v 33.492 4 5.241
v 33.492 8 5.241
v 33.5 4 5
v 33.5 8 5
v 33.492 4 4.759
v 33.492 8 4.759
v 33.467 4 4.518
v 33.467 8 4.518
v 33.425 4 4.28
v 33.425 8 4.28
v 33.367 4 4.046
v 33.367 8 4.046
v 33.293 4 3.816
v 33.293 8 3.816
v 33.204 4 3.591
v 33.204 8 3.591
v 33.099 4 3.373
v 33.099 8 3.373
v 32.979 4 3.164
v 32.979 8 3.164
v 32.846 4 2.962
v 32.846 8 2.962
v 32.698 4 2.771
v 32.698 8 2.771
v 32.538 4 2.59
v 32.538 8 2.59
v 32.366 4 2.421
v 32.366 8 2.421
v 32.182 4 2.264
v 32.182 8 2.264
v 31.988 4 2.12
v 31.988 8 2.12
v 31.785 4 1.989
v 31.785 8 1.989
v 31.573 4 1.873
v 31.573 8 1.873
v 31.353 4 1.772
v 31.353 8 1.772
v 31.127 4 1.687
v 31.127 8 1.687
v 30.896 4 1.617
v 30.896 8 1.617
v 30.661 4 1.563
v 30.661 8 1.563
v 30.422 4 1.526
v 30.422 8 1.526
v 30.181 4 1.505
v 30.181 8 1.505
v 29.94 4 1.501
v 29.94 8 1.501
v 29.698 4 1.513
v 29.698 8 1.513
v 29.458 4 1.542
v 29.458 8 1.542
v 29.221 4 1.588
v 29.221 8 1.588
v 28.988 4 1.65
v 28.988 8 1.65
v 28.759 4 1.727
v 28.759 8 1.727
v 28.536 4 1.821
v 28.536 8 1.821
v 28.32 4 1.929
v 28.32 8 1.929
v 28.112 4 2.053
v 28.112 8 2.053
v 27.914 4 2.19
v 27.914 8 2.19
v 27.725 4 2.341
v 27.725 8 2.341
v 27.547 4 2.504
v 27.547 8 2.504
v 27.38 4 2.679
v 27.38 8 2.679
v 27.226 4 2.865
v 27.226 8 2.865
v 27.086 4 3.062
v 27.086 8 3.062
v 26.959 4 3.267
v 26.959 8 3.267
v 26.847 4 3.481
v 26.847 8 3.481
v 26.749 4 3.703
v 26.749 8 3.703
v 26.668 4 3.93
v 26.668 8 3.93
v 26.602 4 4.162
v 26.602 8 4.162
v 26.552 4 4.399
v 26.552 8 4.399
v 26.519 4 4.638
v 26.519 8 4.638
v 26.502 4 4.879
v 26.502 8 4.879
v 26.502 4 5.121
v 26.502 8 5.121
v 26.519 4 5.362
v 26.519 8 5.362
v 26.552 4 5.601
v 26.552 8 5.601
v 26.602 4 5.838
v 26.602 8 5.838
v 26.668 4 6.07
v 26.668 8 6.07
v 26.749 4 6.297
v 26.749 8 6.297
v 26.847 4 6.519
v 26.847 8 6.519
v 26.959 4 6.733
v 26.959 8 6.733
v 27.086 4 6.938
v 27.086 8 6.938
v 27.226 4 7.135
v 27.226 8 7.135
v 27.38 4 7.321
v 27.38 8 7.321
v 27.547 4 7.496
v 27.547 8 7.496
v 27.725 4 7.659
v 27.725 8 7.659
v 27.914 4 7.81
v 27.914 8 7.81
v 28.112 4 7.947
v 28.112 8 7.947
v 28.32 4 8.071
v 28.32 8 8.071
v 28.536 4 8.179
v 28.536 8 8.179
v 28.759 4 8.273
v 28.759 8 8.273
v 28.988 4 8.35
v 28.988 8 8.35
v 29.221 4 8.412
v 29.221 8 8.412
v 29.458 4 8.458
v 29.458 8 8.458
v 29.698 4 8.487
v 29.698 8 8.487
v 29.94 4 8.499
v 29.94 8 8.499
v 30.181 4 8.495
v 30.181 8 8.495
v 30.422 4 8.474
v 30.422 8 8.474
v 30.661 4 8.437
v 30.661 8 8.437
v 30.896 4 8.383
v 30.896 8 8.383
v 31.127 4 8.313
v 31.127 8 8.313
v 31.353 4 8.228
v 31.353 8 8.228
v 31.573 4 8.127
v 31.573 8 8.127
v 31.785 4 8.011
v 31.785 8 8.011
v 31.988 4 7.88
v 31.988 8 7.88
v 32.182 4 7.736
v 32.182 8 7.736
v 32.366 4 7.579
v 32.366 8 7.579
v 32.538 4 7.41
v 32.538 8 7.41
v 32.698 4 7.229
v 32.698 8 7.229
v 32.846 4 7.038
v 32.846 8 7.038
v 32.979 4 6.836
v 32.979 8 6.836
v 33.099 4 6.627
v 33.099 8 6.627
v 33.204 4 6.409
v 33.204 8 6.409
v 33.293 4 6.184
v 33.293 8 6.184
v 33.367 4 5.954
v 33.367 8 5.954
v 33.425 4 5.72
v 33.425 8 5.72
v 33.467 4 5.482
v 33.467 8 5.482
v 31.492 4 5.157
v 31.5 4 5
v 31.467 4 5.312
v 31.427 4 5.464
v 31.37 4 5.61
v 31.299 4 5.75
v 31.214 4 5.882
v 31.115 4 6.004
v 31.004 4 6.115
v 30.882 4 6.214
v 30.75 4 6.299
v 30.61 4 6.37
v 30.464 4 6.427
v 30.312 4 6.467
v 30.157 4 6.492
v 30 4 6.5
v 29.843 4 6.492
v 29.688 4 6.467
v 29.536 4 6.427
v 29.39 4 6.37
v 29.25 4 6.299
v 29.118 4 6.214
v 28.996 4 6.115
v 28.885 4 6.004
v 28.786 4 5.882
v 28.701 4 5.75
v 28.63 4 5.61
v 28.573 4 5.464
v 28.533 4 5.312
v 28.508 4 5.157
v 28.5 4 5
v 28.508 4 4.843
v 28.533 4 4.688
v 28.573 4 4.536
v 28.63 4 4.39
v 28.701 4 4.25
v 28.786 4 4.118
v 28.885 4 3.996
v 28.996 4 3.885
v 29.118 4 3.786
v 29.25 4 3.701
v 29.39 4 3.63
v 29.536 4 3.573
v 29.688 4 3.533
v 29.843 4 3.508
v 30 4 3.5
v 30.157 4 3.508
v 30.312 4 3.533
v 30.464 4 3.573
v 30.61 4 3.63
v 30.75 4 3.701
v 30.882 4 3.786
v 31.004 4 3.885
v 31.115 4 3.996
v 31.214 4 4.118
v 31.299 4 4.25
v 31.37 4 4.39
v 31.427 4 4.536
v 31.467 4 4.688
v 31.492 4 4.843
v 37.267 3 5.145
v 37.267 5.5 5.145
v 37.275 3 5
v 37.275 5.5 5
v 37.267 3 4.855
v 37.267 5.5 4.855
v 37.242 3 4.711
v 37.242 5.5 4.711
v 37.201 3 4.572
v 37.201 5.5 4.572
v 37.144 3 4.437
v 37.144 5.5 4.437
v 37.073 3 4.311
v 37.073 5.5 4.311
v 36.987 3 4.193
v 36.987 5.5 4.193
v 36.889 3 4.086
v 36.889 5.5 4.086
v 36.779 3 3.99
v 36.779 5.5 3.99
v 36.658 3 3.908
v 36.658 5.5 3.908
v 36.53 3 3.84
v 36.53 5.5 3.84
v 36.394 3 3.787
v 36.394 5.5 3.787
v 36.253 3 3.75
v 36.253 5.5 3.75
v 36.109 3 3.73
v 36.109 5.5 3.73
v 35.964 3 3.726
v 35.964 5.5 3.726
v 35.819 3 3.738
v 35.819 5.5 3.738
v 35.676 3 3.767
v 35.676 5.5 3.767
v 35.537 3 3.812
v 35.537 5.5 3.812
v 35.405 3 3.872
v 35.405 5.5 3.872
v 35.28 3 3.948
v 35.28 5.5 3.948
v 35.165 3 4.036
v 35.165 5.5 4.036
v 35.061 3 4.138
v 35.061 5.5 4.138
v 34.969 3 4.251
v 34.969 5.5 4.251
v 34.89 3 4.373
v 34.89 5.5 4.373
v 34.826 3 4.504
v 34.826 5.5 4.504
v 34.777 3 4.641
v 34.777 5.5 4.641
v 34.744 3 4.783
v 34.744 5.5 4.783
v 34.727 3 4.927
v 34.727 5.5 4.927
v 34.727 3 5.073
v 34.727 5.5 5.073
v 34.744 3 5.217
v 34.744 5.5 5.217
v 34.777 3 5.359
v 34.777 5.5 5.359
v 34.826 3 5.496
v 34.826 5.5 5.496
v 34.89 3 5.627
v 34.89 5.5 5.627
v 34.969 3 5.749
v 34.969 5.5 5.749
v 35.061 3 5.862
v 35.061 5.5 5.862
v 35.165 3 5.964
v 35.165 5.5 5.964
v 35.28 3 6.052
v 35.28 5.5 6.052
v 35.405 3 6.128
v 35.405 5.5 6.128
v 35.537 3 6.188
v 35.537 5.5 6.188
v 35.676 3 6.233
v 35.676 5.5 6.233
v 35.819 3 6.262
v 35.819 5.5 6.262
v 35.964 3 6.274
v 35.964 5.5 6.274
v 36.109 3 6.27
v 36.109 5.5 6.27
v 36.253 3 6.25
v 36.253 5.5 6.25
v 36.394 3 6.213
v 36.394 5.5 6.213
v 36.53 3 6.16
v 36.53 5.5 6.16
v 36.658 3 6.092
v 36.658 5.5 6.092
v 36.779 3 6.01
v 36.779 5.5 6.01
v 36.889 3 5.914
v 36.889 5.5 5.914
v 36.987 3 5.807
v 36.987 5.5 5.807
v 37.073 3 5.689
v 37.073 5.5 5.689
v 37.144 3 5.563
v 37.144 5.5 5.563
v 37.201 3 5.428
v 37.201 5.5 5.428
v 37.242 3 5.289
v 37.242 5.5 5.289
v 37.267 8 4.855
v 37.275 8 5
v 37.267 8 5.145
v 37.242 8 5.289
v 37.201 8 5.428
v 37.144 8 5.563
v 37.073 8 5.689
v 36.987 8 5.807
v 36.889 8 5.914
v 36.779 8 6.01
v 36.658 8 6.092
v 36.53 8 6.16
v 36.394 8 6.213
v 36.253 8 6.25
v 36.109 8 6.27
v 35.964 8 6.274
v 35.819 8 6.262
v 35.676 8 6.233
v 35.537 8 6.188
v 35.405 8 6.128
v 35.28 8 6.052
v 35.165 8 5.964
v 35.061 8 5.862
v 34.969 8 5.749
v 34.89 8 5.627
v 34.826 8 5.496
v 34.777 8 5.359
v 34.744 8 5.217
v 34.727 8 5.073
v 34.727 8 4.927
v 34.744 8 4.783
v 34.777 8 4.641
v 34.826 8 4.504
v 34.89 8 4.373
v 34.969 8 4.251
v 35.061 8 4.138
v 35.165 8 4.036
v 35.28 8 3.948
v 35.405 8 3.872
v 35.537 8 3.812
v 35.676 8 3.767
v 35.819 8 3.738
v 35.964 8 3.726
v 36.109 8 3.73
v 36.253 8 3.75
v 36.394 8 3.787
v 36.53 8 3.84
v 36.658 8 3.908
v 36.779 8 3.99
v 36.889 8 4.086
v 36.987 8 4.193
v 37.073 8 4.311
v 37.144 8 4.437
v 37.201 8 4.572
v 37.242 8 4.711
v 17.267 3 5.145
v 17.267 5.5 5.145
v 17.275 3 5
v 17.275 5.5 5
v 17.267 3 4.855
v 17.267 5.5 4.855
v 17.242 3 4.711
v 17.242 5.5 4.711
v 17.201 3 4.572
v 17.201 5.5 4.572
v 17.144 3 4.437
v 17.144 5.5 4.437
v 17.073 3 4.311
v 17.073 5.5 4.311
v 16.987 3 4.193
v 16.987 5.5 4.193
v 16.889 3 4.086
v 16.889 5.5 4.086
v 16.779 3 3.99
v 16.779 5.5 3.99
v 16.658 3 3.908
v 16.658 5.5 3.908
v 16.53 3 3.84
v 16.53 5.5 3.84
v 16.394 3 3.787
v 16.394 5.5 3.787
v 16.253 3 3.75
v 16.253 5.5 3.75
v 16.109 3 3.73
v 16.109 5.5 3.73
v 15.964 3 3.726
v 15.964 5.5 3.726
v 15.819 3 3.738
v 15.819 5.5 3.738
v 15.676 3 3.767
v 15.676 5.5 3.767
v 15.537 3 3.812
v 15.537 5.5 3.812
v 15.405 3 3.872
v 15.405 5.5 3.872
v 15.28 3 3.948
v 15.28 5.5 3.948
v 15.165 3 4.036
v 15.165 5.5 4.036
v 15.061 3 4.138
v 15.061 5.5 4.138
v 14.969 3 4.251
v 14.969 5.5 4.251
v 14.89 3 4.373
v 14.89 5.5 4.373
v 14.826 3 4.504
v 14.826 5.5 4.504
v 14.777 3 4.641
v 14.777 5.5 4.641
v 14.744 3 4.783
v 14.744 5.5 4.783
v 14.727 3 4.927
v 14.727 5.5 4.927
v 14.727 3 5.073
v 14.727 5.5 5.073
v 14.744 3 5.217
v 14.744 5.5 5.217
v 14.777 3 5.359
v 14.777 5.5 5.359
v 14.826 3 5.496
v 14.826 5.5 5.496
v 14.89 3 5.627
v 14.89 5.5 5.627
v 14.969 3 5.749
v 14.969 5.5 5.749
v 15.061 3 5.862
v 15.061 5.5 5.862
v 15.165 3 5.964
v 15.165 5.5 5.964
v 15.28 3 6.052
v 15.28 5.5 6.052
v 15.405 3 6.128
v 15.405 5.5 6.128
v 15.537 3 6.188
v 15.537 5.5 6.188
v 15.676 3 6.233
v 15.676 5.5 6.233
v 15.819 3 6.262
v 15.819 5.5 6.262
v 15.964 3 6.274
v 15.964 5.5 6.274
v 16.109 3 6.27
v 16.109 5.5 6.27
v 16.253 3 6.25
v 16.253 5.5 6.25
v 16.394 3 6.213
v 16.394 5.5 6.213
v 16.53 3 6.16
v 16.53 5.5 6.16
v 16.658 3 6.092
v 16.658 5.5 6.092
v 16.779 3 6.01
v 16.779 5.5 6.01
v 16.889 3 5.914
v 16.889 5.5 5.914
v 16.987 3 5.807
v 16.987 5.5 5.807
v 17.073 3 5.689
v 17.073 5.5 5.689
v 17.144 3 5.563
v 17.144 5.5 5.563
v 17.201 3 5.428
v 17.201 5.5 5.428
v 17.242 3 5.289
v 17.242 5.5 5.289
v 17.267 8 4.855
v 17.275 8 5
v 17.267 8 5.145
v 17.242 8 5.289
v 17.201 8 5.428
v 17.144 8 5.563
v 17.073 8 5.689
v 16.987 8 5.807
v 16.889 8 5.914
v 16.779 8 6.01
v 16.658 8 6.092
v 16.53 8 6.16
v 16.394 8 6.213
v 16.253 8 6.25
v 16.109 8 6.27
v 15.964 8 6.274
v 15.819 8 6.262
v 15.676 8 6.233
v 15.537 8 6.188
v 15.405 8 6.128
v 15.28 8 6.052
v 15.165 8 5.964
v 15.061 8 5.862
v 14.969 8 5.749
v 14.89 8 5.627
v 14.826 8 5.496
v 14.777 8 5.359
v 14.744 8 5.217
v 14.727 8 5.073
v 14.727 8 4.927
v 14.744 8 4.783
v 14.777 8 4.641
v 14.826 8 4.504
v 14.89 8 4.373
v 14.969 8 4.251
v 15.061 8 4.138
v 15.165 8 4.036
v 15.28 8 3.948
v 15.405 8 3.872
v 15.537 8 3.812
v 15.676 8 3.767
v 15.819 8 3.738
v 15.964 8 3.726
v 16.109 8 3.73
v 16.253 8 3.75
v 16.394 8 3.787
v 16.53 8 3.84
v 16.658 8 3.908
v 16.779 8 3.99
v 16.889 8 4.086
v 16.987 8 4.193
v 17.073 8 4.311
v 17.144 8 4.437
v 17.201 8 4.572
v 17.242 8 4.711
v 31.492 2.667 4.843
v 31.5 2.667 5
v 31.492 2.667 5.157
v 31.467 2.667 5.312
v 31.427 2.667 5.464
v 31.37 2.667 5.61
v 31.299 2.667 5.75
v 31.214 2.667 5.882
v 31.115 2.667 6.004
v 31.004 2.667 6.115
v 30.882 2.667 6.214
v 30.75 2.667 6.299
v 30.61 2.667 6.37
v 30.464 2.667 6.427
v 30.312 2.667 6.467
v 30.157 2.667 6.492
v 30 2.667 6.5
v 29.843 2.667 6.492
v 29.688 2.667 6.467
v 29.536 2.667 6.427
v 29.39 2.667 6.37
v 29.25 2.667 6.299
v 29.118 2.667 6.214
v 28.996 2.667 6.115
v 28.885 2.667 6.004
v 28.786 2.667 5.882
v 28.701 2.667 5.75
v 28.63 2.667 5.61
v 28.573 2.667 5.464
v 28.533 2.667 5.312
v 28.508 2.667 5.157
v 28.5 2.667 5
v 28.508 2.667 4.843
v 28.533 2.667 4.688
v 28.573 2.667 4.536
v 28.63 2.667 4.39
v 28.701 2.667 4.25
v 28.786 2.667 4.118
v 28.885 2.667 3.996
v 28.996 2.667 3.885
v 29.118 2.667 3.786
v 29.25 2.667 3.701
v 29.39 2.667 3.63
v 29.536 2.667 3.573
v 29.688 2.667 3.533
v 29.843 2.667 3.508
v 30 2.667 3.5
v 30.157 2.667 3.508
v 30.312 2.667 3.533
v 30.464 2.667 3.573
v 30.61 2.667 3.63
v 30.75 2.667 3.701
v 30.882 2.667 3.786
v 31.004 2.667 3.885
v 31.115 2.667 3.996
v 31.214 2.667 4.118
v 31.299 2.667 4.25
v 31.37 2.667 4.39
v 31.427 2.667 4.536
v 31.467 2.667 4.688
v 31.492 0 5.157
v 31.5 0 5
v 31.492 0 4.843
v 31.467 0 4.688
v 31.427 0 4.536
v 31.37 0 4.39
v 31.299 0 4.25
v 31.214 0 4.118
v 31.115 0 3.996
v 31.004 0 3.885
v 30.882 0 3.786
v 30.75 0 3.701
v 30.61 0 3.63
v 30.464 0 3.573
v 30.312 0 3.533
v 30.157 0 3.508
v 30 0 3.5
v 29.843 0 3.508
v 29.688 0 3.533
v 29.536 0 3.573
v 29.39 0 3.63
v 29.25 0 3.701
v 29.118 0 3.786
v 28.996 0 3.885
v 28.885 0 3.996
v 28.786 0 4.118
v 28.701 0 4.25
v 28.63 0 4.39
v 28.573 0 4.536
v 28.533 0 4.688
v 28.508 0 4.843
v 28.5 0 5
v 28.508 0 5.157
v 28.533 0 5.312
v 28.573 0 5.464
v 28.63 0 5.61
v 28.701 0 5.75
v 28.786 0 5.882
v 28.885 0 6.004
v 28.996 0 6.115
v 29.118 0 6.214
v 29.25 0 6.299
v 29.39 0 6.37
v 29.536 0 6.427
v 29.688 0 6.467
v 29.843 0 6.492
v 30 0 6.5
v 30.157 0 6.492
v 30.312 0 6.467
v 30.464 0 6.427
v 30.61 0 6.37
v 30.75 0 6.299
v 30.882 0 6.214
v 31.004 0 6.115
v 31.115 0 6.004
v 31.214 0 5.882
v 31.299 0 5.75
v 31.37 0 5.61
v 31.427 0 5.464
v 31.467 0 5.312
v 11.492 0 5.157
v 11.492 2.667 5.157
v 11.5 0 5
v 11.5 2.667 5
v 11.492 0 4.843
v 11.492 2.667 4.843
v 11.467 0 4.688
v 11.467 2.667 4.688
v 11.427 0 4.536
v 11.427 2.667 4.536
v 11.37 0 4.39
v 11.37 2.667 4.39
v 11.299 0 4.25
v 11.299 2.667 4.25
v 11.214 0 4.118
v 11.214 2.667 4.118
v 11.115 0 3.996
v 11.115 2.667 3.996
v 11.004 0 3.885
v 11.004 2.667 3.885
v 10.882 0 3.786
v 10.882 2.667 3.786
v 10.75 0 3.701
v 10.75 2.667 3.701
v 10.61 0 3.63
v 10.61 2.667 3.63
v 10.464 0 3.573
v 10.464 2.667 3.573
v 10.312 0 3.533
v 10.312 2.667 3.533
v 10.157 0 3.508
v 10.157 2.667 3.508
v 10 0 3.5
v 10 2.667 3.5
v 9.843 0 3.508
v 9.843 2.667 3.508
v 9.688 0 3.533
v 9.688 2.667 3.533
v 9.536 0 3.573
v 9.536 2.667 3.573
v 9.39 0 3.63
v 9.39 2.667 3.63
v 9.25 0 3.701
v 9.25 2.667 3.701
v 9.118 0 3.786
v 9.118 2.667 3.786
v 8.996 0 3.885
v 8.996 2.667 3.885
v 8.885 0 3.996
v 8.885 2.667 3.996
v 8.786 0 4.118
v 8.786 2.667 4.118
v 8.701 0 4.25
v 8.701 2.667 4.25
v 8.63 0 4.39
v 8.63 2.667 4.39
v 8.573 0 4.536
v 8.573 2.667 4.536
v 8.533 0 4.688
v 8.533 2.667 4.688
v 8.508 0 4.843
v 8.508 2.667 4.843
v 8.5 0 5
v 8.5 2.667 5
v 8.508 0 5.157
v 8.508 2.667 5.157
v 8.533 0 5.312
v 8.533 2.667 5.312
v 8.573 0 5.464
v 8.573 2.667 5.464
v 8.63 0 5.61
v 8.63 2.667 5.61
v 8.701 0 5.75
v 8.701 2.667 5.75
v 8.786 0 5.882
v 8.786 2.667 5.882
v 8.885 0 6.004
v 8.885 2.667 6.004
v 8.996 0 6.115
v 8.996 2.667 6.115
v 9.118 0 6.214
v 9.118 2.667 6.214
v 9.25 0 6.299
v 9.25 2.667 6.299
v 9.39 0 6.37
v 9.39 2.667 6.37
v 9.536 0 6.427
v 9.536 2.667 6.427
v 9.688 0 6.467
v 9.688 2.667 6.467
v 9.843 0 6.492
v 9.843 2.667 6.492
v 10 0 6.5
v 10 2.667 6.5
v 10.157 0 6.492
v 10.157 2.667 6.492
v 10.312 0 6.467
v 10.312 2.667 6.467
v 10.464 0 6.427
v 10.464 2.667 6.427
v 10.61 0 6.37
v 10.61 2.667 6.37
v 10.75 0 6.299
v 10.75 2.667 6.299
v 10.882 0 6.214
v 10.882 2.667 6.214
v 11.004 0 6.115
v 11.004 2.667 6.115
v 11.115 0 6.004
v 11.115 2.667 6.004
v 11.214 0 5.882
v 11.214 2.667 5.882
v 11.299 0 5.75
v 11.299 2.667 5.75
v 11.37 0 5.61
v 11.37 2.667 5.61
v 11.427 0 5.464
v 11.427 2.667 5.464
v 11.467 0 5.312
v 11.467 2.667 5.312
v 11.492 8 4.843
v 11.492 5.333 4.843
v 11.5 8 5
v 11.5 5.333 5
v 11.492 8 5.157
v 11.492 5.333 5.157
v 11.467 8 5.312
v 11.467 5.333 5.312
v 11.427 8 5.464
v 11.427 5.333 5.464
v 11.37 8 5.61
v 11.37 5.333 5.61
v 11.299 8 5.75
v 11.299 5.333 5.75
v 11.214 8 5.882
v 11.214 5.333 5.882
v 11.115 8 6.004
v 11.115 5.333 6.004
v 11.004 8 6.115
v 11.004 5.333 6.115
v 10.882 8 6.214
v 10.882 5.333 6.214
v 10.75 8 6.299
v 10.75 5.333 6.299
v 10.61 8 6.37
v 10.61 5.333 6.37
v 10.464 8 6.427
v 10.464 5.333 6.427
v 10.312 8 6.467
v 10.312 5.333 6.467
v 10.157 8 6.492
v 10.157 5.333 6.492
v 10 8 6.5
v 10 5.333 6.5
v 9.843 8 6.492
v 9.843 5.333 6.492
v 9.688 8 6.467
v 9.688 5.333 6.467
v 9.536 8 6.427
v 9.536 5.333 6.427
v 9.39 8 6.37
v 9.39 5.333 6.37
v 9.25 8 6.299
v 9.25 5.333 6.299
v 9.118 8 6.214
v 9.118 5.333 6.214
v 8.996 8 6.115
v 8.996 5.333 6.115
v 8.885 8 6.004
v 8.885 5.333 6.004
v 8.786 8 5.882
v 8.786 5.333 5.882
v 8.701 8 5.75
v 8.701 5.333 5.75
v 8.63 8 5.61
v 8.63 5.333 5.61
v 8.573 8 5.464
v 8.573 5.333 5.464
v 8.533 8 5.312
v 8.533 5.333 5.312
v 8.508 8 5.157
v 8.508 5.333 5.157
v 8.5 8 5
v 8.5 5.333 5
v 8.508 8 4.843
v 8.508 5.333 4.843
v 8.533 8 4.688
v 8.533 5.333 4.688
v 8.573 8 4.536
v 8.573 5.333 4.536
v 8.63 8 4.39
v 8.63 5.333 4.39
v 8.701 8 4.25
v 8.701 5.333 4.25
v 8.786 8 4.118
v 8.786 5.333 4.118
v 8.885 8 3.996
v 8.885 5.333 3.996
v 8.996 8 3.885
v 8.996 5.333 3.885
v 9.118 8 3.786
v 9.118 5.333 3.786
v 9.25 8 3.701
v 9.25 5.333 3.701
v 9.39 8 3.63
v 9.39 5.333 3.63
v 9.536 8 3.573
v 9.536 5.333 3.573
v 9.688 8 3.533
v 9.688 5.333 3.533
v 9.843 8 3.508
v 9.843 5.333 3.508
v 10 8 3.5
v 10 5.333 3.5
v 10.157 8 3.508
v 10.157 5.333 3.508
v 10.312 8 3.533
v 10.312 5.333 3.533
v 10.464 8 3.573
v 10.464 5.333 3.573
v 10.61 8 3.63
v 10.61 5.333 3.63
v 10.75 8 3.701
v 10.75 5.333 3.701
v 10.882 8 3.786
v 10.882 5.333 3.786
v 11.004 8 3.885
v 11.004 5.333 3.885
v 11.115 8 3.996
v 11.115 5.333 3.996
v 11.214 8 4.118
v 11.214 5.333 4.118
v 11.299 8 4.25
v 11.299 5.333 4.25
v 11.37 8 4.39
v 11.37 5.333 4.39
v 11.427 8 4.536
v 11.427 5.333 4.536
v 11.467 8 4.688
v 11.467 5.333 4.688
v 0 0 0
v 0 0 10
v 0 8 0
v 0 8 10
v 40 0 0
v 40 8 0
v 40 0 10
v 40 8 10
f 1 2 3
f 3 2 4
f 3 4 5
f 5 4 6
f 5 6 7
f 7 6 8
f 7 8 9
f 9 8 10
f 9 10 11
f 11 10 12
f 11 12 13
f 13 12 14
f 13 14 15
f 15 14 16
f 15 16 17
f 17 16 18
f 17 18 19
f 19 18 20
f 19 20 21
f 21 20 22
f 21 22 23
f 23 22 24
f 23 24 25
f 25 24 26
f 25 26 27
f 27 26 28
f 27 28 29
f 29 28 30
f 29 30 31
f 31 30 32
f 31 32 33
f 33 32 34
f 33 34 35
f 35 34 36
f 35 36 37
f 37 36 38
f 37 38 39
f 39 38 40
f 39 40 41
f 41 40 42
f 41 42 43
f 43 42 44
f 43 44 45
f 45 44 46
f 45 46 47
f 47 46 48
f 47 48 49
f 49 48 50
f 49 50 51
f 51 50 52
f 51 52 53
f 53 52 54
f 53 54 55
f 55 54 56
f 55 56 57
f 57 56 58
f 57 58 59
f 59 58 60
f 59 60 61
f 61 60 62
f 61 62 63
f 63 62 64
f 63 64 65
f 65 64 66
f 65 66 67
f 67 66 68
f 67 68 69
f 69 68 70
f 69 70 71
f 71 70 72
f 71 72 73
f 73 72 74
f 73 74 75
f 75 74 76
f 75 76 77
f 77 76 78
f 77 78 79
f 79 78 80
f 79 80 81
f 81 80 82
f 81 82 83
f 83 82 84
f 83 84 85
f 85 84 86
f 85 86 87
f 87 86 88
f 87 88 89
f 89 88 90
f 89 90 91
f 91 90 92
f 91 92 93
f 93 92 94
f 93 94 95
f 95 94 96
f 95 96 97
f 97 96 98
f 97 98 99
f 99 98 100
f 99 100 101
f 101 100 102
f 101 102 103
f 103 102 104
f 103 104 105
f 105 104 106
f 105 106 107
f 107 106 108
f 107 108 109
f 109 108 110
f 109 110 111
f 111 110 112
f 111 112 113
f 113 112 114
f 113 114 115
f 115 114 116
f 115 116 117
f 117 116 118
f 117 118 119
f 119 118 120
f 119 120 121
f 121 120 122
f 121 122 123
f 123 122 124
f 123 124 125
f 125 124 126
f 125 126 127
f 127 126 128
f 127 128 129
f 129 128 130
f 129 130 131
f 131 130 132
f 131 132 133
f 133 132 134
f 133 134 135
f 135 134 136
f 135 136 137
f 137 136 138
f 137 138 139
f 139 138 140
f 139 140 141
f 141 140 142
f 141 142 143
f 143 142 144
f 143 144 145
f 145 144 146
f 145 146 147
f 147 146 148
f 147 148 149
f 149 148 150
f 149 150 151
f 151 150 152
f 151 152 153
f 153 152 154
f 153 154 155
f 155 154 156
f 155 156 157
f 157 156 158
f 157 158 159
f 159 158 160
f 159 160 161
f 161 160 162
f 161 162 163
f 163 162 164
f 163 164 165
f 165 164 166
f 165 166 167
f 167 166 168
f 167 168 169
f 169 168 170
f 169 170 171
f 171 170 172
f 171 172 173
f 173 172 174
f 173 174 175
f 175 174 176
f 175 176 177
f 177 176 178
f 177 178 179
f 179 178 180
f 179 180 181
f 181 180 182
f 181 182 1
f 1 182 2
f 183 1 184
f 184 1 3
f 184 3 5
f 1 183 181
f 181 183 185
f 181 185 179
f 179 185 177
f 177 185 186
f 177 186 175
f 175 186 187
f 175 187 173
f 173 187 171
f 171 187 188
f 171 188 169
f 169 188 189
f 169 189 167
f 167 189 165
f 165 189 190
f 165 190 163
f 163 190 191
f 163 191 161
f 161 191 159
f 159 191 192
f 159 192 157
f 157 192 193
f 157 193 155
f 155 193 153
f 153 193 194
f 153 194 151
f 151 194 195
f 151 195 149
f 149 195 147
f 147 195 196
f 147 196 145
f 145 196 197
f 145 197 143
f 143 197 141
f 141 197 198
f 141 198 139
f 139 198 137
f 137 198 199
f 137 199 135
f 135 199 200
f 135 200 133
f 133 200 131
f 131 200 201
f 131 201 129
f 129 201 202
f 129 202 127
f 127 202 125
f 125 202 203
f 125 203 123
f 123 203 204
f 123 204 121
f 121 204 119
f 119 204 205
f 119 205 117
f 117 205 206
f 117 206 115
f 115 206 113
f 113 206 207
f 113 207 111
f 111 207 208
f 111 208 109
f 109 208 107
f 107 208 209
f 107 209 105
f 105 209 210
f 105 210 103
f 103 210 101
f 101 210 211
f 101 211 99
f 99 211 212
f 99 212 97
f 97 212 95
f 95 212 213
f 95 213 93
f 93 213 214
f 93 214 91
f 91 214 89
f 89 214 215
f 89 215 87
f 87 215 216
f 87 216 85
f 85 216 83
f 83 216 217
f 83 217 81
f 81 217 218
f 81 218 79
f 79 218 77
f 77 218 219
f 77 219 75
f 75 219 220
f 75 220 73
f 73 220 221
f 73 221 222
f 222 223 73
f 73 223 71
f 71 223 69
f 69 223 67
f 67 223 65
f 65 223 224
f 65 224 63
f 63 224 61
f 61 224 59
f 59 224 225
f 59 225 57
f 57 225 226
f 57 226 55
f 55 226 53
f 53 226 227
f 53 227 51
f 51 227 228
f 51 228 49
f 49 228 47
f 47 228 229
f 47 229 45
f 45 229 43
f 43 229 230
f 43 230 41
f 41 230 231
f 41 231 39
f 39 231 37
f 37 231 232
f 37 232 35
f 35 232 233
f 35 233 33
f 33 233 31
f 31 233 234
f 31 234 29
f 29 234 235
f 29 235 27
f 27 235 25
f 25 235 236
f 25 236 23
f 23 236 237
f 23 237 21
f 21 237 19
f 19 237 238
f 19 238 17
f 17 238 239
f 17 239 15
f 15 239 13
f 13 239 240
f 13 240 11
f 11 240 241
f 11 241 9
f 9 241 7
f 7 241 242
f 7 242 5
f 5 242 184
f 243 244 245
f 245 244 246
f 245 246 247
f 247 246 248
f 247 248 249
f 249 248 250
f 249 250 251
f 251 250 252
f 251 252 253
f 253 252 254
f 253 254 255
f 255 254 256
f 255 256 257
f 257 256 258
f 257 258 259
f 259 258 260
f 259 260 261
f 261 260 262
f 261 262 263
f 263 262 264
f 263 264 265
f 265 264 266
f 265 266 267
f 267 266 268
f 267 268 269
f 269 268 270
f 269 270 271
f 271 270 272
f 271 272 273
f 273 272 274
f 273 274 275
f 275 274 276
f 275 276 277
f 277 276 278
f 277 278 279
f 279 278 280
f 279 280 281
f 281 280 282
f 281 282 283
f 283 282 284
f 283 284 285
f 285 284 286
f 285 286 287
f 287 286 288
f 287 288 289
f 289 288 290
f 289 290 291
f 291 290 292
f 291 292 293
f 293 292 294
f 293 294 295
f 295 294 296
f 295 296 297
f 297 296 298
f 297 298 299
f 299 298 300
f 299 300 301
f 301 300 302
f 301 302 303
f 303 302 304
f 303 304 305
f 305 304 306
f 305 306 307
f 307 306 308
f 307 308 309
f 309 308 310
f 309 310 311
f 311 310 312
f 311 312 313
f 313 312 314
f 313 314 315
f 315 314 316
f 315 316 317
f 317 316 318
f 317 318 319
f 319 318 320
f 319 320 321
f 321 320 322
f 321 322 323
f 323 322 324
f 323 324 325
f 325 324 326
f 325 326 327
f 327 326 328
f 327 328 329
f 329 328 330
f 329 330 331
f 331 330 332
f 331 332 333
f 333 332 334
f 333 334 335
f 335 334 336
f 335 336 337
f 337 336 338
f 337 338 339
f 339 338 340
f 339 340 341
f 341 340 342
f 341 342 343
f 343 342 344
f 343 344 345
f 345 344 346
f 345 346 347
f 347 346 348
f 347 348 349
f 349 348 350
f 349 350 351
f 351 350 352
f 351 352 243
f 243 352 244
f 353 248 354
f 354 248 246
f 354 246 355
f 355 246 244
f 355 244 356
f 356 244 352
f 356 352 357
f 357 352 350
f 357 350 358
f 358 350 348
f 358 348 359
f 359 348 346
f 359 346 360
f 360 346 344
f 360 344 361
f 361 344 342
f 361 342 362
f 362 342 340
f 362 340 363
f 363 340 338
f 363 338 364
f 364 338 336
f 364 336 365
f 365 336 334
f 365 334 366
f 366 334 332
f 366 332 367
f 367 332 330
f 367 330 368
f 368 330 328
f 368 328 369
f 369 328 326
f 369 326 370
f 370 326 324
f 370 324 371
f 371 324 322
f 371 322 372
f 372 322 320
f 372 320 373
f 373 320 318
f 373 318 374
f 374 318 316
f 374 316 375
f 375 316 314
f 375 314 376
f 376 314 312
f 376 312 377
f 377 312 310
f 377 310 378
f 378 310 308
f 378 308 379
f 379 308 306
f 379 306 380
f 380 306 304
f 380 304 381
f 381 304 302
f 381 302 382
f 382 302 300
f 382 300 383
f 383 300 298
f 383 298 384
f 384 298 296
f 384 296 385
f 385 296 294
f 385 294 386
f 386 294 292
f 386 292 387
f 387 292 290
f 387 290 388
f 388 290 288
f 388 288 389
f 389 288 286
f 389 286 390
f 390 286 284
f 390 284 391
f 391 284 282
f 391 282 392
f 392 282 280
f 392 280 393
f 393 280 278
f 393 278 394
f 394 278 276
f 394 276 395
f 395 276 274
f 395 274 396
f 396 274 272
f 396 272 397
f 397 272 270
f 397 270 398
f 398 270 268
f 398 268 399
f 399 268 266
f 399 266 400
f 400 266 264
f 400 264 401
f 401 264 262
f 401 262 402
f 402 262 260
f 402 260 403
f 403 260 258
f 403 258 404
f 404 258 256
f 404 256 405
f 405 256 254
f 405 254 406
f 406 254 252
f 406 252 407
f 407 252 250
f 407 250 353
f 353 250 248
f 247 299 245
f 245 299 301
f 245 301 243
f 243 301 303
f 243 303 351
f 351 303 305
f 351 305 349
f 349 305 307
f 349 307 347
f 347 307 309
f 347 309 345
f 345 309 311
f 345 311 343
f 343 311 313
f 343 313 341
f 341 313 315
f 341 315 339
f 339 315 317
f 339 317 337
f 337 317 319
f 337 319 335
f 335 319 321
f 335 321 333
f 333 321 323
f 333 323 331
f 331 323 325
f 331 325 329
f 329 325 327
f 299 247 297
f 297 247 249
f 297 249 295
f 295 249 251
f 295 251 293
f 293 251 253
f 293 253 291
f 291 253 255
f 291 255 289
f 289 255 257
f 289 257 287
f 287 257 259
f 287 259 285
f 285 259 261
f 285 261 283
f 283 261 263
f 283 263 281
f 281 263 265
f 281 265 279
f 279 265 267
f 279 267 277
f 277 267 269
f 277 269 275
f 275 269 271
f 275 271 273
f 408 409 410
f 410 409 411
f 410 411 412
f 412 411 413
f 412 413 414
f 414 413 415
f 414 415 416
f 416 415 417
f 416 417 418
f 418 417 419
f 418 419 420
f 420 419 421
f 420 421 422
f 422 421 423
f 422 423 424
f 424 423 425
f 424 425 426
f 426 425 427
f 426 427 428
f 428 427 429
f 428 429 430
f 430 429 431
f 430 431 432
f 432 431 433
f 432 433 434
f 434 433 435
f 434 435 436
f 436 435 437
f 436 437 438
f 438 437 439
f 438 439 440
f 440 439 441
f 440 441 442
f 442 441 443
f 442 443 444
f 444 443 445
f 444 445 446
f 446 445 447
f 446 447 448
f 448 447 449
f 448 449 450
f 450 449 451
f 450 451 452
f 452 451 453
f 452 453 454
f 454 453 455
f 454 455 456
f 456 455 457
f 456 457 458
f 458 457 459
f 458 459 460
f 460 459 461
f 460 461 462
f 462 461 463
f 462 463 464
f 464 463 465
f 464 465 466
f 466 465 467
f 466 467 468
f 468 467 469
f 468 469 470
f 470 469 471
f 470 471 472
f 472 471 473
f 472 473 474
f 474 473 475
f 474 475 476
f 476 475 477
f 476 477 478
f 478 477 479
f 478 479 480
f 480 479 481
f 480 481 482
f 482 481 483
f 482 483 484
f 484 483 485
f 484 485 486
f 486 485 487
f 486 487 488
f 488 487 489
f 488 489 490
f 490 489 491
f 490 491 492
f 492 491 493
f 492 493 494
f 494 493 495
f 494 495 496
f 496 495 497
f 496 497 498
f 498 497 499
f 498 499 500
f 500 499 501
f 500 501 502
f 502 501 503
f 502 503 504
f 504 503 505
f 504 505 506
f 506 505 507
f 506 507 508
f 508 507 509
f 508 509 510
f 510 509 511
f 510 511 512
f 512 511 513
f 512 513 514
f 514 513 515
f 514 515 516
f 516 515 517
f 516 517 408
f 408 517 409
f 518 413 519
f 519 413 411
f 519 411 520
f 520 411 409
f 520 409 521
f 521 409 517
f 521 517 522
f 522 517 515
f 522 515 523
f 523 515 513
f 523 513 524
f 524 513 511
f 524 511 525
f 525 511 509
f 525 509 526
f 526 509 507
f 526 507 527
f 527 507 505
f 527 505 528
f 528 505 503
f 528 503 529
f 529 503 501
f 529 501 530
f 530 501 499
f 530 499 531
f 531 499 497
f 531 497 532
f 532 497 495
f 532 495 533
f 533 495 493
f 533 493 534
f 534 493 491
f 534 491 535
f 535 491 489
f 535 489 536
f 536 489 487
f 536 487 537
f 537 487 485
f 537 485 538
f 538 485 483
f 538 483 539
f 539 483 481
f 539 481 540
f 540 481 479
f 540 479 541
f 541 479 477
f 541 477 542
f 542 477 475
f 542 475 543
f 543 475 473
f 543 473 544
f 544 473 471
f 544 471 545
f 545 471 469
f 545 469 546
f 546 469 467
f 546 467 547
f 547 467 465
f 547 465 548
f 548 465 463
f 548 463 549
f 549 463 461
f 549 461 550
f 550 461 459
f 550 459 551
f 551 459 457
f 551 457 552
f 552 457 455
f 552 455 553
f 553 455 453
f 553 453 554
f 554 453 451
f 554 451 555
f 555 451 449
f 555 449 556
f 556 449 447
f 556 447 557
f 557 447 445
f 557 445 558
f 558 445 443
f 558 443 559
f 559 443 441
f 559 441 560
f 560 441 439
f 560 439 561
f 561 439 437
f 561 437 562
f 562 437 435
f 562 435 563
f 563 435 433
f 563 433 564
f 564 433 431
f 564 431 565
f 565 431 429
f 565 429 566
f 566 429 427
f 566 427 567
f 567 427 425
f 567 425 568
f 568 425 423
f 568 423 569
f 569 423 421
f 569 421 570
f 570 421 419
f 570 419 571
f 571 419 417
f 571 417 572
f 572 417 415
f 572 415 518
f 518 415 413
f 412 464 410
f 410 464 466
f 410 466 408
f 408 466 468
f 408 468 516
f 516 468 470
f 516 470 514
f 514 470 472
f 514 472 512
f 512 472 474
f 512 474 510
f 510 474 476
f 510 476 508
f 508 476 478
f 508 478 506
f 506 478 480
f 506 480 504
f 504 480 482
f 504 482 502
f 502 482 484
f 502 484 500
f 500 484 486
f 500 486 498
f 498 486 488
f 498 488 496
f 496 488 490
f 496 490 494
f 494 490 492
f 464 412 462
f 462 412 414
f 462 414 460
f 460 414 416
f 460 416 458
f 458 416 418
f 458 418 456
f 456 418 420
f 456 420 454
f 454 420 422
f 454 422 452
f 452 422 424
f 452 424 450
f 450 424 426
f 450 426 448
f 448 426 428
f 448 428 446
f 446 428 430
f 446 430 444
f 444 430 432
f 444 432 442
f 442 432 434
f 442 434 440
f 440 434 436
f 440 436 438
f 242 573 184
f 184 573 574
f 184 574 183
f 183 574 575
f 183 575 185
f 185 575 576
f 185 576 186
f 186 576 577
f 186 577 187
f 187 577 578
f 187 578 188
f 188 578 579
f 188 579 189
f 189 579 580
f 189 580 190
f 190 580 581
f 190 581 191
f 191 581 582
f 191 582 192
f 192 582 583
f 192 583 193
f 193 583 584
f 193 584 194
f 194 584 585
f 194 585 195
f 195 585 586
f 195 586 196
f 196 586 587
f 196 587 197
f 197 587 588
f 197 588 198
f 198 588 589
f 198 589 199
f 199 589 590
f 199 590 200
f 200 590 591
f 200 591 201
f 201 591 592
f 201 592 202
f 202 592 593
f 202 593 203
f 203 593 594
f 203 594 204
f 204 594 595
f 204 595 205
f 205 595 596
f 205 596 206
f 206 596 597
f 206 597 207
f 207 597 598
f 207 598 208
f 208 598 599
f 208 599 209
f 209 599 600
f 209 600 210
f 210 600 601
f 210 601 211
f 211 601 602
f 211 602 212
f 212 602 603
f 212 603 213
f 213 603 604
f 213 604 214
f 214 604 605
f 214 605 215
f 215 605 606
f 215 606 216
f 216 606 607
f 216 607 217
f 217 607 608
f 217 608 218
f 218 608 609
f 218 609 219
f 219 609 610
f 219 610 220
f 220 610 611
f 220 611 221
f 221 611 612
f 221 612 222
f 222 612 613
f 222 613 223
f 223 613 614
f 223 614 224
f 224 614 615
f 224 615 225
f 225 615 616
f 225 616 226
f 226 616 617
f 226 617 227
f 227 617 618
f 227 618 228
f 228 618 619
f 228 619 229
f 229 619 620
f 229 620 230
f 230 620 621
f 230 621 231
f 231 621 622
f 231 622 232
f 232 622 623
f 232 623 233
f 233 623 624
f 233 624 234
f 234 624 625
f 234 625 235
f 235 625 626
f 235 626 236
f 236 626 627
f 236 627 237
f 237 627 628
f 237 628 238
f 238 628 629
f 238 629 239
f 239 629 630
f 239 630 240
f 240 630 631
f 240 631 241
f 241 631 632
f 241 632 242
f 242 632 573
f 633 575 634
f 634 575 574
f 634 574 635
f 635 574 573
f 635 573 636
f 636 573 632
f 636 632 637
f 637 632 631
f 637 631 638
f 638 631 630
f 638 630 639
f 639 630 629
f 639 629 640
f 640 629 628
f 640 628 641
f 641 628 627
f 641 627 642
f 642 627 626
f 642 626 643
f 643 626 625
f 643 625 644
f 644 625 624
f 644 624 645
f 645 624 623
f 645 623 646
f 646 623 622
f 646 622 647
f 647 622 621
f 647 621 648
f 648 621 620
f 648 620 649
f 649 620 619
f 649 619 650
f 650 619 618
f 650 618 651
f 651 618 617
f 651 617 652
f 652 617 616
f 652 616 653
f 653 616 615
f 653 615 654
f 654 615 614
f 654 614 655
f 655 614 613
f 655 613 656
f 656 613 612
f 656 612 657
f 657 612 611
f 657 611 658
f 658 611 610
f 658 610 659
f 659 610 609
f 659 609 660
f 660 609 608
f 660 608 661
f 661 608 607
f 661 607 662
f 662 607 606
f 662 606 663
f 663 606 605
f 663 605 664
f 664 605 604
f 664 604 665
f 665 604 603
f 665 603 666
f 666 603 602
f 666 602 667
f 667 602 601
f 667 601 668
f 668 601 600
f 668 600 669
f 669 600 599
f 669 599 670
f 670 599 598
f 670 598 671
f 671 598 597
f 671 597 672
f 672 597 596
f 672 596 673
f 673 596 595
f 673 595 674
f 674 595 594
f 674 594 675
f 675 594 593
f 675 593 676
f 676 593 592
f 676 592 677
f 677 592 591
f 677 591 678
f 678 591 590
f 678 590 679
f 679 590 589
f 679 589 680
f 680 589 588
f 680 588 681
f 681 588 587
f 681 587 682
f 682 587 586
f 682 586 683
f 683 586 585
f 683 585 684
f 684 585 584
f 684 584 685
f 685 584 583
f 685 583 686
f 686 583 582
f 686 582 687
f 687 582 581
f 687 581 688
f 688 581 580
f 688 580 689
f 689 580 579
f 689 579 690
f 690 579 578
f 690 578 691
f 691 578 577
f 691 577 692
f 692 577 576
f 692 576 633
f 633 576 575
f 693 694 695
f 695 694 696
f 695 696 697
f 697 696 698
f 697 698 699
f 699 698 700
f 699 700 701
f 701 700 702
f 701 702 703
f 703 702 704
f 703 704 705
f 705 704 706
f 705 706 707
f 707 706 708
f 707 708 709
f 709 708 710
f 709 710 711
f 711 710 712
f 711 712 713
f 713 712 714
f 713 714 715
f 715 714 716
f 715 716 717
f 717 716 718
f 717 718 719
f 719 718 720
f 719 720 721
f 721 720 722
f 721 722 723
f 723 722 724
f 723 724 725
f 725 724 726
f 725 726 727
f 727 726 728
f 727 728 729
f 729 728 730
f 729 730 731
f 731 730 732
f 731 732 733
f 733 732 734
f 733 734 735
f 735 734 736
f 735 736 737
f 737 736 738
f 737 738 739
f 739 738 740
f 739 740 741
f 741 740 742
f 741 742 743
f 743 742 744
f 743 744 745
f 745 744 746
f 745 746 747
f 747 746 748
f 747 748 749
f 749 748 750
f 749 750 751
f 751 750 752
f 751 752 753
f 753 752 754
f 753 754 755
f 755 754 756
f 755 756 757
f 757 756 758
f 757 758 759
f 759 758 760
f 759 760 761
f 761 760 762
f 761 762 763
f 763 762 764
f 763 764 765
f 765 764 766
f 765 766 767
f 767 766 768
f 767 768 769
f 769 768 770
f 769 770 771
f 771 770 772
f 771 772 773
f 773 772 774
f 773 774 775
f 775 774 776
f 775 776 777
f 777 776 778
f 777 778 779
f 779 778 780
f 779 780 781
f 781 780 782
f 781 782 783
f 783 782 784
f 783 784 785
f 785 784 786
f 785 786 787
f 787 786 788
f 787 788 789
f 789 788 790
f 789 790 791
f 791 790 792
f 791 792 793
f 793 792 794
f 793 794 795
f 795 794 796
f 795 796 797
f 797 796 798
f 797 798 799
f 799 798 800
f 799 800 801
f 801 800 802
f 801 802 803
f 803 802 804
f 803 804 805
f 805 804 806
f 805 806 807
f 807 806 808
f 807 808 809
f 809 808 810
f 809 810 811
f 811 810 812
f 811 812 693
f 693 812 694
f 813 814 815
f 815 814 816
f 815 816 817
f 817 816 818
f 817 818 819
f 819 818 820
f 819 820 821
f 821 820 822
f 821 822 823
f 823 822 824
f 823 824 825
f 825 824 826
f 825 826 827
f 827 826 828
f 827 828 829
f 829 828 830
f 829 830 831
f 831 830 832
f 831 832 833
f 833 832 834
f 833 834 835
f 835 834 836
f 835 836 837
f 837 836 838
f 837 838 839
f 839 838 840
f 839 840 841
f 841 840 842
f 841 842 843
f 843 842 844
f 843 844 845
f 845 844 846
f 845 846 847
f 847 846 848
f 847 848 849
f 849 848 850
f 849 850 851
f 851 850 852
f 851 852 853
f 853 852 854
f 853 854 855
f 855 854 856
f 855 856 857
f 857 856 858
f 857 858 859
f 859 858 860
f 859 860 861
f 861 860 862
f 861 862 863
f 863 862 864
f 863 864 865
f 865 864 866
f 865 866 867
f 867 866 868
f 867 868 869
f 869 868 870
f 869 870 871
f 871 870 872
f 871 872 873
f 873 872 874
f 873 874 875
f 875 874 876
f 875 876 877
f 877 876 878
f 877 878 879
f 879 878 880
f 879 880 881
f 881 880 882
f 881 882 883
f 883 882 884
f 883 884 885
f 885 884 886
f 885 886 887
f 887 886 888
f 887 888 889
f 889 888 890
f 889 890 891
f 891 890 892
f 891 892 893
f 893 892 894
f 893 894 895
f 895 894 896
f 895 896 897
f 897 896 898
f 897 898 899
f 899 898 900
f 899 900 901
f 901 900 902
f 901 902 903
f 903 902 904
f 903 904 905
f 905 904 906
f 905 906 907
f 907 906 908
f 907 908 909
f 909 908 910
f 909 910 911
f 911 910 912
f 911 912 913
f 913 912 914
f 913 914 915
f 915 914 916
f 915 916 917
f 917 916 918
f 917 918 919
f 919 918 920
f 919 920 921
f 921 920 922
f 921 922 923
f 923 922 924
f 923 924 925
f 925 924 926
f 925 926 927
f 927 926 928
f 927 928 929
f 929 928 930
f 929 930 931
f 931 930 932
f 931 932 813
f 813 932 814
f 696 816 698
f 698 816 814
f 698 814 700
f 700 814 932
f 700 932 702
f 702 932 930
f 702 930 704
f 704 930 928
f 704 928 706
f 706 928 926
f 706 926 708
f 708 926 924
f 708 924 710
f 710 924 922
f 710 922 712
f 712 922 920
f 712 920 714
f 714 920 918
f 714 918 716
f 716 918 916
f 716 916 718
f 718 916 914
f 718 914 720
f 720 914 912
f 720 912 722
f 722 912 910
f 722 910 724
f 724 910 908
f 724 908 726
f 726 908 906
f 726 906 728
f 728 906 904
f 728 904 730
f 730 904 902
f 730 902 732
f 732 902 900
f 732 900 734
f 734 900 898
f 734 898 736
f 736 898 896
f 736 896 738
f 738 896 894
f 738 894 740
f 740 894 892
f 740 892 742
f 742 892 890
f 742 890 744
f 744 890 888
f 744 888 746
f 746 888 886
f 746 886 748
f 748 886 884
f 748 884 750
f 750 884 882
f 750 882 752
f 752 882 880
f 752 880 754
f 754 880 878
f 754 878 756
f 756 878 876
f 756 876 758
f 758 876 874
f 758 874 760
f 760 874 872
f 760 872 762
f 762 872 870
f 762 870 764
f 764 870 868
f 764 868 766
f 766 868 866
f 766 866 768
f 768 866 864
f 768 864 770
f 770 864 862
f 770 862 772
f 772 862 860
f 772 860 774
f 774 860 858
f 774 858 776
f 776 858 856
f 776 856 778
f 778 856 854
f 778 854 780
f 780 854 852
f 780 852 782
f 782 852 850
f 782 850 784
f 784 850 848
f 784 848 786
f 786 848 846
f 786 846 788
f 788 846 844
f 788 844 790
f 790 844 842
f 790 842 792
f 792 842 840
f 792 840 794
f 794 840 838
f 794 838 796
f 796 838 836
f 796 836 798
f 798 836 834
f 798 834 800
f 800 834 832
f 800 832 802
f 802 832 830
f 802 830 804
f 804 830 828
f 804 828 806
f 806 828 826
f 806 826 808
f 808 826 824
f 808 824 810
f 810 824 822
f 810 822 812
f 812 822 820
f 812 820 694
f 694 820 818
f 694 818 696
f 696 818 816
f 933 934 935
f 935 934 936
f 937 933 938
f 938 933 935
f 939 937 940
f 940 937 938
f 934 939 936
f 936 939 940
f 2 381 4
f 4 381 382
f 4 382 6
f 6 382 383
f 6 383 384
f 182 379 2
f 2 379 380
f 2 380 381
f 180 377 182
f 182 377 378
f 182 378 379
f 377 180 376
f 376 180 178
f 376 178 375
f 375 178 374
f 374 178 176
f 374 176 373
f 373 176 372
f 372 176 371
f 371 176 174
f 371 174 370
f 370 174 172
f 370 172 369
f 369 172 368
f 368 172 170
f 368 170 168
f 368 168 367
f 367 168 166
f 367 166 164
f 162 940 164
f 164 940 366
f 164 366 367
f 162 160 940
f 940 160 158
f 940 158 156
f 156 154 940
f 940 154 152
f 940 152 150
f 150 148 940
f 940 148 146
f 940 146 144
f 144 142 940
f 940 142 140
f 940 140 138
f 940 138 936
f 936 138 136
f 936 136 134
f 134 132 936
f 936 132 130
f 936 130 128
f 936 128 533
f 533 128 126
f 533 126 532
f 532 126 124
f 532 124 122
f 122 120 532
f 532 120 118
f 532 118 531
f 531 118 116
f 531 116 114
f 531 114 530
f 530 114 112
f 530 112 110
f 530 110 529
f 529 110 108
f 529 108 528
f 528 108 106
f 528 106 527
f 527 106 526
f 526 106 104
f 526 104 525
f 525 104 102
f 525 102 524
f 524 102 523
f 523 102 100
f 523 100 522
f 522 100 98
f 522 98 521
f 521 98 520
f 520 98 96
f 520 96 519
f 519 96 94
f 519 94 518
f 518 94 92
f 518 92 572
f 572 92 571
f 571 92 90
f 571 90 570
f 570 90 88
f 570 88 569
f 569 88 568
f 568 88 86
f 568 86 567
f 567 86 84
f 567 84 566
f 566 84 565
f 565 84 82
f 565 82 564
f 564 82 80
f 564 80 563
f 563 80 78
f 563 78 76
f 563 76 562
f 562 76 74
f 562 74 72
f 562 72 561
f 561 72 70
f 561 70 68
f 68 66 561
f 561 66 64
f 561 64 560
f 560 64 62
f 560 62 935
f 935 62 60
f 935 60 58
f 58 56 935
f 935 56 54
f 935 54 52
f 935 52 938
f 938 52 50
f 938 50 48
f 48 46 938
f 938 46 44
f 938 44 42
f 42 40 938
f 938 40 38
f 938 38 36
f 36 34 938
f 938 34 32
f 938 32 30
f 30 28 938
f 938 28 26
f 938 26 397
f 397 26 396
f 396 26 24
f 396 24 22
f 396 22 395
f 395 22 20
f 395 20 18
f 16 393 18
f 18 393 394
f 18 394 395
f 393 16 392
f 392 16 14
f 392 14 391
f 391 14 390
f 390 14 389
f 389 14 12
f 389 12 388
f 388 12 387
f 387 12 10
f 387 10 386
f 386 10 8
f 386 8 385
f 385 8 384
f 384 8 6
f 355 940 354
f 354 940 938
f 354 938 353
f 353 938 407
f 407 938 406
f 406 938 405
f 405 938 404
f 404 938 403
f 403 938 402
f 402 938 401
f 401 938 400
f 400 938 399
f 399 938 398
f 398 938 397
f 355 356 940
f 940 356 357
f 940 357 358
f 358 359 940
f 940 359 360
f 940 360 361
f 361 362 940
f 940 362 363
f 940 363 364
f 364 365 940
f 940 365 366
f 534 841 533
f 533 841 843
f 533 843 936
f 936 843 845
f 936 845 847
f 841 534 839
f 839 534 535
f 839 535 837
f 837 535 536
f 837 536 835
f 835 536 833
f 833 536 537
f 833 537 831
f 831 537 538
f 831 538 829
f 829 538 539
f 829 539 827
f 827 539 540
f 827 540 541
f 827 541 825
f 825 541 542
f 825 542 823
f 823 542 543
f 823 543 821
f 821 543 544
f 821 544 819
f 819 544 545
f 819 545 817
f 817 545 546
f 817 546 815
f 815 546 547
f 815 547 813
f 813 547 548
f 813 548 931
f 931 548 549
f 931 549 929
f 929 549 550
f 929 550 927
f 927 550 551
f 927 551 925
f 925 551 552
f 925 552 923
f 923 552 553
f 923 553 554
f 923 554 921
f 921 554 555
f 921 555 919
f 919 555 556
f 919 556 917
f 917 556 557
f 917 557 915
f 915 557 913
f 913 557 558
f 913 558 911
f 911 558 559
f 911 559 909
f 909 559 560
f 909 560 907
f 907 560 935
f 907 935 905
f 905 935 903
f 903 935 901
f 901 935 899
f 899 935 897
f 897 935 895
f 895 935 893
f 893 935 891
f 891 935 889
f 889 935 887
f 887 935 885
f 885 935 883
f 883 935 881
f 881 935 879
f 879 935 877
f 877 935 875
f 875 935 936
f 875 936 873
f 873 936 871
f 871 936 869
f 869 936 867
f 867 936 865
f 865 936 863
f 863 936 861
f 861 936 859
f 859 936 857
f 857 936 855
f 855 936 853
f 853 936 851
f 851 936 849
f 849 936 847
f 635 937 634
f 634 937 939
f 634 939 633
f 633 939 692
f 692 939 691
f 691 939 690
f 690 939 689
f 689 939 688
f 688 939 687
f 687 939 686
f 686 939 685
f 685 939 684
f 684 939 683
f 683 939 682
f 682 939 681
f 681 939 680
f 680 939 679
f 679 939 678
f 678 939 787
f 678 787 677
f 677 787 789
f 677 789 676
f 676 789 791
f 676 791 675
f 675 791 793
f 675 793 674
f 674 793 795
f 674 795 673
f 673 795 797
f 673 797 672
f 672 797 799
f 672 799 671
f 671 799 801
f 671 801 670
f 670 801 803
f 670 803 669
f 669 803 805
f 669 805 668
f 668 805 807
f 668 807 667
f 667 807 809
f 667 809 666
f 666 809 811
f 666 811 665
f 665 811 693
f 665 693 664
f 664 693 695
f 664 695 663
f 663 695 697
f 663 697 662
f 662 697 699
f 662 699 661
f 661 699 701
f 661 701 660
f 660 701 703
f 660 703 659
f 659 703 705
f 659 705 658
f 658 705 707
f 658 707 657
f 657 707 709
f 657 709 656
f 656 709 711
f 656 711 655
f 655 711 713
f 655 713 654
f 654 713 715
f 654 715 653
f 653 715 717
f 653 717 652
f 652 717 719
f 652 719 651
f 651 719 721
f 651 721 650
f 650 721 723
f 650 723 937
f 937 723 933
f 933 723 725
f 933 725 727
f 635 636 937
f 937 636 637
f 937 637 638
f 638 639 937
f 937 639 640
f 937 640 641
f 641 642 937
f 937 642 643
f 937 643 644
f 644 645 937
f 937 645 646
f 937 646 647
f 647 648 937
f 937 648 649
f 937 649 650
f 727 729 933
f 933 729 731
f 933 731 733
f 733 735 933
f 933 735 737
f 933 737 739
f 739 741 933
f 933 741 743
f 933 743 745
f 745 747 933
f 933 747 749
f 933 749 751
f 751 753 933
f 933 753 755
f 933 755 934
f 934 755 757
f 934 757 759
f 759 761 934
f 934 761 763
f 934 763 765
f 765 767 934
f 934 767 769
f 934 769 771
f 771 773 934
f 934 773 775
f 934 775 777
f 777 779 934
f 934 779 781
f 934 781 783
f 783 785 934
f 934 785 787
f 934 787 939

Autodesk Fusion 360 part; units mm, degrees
sketch "Skizze1" plane through (0, 0, 0) normal (0, 1, 0) x (1, 0, 0)
  line L0 (0, 0) -> (40, 0)
  line L1 (40, 0) -> (40, -5)
  line L2 (40, -5) -> (40, -10)
  line L3 (40, -10) -> (0, -10)
  line L4 (0, -10) -> (0, 0)
extrude "Extrusion1" add sketch "Skizze1" along normal blind 8
sketch "Skizze2" plane through (0, 8, 0) normal (0, 1, 0) x (-1, 0, 0)
  line L0 (0, 10) -> (-40, 10)
  line L1 (-40, 10) -> (-40, 0)
  line L2 (-40, 0) -> (0, 0)
  line L3 (0, 0) -> (0, 10)
  circle A0 centre (-10, 5) radius 1.5
  line L4 (-40, 0) -> (-40, 5)
  circle A1 centre (-36, 5) radius 1.275
  circle A2 centre (-16, 5) radius 1.275
  line L5 (-10, 5) -> (-30, 5)
  circle A3 centre (-30, 5) radius 1.5
  circle A4 centre (-30, 5) radius 3.5
  dimension "d3" = 3
  dimension "d4" = 2.55
  dimension "d5" = 2.55
  dimension "d6" = 3
  dimension "d7" = 7
extrude "Extrusion2" cut sketch "Skizze2" against normal blind 20 contours A0 | A3
extrude "Extrusion3" cut sketch "Skizze2" against normal blind 5 contours A2 L5 | A2 L5
extrude "Extrusion4" cut sketch "Skizze2" against normal blind 5 contours A1
extrude "Extrusion5" cut sketch "Skizze2" against normal blind 4 contours A4
